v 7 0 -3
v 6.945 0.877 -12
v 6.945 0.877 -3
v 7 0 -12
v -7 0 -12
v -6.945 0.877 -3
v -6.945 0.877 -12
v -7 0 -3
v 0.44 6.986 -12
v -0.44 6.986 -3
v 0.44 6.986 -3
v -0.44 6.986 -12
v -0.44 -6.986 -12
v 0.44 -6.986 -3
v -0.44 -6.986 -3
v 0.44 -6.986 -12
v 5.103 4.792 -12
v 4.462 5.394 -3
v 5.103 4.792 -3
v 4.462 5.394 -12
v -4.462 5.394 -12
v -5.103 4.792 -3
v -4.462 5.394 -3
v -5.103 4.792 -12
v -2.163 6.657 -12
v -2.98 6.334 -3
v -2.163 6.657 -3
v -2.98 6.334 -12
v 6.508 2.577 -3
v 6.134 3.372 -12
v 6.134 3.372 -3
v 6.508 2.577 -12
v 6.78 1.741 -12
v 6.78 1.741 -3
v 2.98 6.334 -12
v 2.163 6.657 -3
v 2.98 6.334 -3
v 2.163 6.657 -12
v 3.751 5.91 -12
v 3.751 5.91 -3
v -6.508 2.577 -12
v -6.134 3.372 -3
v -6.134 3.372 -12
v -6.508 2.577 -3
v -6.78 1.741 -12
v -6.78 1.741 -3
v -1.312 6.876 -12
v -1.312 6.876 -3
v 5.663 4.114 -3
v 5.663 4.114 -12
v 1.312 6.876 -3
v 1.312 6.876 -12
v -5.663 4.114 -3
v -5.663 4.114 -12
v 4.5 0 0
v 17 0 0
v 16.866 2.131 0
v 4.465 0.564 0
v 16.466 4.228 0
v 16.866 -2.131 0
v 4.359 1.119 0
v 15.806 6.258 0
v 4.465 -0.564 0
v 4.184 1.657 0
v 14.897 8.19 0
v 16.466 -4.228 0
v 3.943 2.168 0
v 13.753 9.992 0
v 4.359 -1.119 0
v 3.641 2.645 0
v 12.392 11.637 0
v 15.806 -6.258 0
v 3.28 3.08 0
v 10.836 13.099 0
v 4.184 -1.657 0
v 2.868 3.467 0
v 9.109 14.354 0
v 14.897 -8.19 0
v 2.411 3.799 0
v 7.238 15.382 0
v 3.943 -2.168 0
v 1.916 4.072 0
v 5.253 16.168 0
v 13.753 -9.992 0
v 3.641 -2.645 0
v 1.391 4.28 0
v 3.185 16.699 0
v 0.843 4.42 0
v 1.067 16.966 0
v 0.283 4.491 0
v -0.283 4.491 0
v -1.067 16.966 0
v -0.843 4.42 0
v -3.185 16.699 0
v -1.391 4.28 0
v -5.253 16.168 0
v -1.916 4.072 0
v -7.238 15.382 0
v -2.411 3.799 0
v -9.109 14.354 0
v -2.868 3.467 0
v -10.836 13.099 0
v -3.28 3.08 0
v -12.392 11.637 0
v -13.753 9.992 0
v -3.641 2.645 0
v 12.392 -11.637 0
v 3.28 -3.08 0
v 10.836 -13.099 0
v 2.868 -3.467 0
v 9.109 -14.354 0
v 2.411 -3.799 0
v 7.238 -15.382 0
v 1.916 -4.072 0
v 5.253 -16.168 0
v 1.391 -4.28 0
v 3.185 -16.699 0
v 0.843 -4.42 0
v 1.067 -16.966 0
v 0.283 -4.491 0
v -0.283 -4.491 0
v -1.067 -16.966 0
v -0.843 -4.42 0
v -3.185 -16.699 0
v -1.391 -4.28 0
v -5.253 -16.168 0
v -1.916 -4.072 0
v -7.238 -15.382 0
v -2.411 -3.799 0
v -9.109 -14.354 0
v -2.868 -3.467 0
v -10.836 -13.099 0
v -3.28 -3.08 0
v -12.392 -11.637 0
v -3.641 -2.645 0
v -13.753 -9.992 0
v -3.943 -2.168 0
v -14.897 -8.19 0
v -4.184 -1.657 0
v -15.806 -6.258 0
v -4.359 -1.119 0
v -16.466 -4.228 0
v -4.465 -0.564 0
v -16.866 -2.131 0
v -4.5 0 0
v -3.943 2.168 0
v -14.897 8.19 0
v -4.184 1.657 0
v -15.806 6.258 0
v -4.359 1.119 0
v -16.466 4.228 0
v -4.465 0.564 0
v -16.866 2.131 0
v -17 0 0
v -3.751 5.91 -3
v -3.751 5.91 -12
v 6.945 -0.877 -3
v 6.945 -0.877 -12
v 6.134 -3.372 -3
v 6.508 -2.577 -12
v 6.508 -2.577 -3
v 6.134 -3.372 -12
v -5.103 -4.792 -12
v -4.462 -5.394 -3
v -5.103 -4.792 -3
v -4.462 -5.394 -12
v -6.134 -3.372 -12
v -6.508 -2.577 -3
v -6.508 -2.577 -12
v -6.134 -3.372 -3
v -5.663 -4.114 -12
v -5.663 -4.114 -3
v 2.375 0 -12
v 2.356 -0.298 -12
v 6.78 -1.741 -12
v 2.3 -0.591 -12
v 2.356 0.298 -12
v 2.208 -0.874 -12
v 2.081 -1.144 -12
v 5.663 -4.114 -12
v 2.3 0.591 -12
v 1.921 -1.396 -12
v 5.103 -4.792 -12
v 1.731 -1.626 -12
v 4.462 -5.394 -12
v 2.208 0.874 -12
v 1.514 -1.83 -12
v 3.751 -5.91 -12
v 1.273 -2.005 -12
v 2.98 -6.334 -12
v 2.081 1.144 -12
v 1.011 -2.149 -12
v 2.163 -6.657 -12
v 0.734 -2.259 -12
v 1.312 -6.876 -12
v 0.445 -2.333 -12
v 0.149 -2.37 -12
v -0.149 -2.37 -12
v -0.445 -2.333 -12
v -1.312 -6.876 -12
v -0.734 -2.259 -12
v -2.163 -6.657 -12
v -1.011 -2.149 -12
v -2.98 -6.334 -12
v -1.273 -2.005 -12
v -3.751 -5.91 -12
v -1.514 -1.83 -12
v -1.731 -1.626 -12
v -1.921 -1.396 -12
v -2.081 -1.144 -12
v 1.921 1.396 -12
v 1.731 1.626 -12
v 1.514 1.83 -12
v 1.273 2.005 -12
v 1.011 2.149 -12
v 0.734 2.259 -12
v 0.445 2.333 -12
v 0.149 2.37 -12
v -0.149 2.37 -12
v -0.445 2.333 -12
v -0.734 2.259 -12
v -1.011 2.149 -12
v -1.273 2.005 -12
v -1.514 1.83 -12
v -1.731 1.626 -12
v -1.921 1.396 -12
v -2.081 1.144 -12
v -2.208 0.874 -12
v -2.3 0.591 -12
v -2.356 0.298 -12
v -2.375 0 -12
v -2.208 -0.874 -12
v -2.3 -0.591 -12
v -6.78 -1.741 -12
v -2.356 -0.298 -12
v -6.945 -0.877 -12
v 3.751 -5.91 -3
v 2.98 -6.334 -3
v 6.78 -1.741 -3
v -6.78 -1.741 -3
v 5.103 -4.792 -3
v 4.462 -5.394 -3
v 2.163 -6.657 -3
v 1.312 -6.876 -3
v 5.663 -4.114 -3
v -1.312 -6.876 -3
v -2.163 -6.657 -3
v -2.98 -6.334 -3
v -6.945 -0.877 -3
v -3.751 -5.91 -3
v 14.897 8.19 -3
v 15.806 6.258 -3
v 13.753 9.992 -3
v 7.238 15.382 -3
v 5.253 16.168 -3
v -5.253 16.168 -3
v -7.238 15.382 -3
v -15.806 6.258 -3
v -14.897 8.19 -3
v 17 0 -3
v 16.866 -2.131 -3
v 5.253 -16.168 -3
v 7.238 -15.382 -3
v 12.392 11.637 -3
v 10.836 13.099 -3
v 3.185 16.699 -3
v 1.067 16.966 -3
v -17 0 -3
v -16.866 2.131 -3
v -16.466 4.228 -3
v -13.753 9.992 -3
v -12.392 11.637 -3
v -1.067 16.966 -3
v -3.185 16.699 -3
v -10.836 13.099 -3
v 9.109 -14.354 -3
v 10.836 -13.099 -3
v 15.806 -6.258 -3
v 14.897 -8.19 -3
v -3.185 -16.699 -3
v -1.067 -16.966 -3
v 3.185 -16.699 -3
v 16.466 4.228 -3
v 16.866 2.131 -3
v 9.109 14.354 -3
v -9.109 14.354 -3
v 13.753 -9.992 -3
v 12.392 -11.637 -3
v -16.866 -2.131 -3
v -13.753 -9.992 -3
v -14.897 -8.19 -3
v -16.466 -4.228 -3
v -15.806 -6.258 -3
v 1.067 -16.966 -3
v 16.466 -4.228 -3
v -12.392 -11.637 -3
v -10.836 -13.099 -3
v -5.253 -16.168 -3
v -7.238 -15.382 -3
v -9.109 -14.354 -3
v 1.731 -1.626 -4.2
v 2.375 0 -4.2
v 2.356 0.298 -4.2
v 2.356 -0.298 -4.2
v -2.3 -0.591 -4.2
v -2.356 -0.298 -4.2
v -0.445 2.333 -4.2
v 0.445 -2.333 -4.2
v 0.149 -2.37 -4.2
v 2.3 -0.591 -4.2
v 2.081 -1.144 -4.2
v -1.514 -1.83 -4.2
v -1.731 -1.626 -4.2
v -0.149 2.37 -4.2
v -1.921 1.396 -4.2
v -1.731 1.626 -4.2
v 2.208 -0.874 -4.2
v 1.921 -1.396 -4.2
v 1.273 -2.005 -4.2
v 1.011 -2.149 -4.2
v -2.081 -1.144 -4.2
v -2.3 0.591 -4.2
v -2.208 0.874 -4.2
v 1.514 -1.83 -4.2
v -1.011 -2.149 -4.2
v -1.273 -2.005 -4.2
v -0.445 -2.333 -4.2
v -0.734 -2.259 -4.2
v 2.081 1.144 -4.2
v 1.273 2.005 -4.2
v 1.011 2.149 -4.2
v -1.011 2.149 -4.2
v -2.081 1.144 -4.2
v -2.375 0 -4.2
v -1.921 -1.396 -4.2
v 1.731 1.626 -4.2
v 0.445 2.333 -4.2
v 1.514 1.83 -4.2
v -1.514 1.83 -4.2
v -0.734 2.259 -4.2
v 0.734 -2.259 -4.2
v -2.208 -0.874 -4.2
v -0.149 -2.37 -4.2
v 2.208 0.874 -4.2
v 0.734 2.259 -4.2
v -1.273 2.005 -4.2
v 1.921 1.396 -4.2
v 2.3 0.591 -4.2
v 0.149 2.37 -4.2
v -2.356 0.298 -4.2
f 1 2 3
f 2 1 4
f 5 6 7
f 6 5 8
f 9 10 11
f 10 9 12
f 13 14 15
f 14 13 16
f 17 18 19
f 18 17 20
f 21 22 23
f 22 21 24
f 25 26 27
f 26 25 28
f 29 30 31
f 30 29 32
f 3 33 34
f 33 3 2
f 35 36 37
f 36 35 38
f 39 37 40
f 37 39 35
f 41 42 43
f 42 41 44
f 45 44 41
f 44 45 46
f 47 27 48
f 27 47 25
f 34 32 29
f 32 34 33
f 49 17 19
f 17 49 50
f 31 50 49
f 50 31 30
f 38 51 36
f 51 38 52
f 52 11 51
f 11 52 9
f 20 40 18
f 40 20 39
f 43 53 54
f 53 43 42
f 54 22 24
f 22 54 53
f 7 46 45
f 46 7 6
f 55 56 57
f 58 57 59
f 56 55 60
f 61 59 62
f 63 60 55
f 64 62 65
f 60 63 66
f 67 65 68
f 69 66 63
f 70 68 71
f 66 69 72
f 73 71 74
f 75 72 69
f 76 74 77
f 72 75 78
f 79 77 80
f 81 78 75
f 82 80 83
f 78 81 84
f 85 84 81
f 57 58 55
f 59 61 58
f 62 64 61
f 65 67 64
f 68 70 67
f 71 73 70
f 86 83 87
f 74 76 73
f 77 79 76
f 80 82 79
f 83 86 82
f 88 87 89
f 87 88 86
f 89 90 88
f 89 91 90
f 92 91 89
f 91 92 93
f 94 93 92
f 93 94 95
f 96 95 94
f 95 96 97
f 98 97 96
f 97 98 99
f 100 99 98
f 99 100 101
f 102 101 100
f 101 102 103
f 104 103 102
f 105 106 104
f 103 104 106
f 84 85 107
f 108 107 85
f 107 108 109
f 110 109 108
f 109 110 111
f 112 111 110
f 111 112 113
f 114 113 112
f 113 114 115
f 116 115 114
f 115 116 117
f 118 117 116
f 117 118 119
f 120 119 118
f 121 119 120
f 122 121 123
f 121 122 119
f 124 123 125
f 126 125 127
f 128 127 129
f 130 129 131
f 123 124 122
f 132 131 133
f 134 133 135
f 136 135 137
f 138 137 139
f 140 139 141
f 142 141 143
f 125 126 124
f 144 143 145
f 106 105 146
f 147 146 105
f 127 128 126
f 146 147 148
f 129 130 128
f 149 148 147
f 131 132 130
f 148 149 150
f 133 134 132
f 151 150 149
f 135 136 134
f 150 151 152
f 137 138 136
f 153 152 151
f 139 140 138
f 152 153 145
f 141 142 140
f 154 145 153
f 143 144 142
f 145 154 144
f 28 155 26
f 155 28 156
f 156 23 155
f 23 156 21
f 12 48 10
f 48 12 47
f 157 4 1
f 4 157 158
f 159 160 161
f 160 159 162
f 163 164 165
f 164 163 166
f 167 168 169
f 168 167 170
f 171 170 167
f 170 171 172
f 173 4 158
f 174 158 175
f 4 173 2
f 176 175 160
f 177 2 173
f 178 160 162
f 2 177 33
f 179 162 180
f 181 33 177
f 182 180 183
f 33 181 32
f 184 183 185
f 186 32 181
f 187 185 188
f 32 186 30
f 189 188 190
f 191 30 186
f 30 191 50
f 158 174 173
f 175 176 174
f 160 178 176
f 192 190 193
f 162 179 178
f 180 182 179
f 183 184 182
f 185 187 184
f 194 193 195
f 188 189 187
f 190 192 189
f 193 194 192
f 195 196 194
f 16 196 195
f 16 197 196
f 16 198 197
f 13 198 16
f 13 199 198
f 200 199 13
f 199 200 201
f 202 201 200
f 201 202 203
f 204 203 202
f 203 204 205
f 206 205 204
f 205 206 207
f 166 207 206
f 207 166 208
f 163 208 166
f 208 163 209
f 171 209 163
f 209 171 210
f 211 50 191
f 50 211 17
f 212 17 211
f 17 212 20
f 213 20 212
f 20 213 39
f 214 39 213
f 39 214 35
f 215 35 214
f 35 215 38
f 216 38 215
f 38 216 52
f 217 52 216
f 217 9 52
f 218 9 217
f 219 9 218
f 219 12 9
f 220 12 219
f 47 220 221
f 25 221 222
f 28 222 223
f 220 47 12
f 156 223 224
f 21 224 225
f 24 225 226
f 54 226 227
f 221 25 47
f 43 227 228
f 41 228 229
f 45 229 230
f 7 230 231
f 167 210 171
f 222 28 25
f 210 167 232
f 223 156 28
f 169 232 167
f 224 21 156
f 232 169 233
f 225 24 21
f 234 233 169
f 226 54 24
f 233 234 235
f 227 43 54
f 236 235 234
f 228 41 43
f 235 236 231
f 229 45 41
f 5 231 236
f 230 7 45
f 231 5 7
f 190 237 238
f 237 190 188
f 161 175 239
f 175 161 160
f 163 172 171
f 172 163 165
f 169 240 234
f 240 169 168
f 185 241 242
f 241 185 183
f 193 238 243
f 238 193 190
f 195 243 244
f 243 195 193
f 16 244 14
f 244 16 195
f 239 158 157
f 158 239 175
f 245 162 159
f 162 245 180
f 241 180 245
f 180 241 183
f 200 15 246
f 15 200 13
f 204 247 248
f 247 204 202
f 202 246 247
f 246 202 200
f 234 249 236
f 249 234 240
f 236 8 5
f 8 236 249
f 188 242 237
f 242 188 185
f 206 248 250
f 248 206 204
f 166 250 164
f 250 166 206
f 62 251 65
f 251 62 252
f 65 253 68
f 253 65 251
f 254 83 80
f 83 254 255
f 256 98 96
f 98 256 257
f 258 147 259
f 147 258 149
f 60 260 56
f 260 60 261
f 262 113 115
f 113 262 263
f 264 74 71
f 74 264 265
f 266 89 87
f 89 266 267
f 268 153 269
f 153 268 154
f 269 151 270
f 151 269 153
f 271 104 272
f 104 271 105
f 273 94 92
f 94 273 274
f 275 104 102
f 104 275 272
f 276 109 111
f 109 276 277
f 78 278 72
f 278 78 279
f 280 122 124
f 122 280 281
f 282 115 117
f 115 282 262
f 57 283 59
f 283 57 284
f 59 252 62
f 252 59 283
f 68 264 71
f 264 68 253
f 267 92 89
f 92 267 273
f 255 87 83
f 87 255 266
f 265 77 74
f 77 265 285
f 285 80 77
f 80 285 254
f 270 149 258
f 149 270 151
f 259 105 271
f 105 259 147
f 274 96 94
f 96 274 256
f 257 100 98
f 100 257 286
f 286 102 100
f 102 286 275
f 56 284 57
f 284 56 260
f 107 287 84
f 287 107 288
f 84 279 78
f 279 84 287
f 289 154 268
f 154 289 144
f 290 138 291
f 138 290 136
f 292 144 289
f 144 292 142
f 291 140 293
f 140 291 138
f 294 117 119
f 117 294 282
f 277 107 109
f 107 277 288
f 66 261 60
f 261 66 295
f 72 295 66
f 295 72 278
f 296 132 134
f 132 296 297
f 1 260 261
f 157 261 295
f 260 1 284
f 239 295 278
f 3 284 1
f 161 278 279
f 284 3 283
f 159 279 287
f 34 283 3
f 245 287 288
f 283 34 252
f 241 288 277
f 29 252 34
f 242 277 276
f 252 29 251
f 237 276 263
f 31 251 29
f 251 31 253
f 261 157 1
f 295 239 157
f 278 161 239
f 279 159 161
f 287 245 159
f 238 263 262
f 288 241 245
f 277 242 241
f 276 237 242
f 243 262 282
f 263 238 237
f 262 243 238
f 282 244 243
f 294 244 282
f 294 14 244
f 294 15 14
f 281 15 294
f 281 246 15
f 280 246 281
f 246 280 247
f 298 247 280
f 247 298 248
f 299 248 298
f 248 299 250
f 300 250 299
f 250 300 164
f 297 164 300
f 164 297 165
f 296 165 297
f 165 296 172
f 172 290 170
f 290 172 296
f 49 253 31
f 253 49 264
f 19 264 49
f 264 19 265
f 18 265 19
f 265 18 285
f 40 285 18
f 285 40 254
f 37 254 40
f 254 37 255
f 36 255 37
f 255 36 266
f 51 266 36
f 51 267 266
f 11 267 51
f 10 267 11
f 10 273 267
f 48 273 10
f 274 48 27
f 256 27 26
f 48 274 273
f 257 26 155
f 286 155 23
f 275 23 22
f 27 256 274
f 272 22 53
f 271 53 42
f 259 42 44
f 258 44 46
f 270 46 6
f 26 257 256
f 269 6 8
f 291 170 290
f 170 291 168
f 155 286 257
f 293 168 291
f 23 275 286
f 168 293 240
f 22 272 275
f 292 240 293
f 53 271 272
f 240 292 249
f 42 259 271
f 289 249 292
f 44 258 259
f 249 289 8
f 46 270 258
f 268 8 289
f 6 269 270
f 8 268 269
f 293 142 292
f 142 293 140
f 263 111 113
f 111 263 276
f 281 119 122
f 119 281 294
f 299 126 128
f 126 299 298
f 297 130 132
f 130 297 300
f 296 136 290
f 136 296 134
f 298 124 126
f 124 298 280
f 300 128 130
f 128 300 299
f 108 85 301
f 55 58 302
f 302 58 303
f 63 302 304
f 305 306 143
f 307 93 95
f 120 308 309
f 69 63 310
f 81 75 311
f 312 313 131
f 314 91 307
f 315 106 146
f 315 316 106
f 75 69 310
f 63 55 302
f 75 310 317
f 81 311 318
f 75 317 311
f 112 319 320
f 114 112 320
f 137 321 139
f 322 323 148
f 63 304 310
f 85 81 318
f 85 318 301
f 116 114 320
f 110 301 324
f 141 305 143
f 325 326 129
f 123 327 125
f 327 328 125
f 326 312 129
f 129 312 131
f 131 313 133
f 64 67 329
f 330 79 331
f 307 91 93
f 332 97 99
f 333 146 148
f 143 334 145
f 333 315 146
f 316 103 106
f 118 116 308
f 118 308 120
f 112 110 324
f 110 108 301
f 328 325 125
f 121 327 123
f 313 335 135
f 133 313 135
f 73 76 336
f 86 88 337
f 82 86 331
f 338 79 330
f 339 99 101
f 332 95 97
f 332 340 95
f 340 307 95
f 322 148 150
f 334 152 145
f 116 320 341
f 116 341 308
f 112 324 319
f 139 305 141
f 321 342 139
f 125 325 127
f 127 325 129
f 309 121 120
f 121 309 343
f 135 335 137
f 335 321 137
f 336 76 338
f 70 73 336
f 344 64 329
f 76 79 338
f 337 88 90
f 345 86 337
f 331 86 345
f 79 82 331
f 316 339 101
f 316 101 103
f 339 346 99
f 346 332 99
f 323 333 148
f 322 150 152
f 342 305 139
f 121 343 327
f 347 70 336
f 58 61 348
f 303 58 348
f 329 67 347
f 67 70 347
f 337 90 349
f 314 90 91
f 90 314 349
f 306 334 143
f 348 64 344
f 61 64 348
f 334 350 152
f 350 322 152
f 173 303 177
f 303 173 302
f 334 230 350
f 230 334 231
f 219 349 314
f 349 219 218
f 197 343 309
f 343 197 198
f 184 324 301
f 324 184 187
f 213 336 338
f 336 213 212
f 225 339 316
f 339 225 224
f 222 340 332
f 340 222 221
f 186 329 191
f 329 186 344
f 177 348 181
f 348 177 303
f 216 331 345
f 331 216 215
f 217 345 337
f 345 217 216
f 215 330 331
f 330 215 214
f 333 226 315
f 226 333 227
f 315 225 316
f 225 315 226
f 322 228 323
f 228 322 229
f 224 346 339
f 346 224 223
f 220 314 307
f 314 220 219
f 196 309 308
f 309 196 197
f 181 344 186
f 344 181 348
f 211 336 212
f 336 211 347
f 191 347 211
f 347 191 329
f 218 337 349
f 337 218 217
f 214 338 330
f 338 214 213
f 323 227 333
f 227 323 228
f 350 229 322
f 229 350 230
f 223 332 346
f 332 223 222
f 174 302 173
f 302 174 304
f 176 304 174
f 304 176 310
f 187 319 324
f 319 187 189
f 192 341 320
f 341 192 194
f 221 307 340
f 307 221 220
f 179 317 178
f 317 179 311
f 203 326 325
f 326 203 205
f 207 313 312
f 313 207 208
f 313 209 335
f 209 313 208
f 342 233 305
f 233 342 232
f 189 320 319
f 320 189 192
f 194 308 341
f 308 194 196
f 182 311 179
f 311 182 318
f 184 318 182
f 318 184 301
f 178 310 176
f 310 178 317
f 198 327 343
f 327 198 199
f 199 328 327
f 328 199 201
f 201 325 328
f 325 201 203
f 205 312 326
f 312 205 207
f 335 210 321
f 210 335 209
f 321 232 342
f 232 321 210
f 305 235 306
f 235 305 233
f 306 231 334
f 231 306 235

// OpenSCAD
$fn = 50;


difference() {
	union() {
		translate(v = [0, 0, -12.0000000000]) {
			cylinder(h = 12, r = 7.0000000000);
		}
		translate(v = [0, 0, -3.0000000000]) {
			cylinder(h = 3, r = 17.0000000000);
		}
	}
	union() {
		translate(v = [0, 0, 0]) {
			rotate(a = [0, 0, 0]) {
				difference() {
					union() {
						#translate(v = [0, 0, -12.0000000000]) {
							cylinder(h = 12, r = 2.2500000000);
						}
						#translate(v = [0, 0, -4.2000000000]) {
							cylinder(h = 4.2000000000, r = 7.0000000000, r1 = 2.3750000000, r2 = 4.5000000000);
						}
						#translate(v = [0, 0, -12.0000000000]) {
							cylinder(h = 12, r = 2.3750000000);
						}
						#translate(v = [0, 0, -12.0000000000]) {
							cylinder(h = 12, r = 2.2500000000);
						}
					}
					union();
				}
			}
		}
	}
}
